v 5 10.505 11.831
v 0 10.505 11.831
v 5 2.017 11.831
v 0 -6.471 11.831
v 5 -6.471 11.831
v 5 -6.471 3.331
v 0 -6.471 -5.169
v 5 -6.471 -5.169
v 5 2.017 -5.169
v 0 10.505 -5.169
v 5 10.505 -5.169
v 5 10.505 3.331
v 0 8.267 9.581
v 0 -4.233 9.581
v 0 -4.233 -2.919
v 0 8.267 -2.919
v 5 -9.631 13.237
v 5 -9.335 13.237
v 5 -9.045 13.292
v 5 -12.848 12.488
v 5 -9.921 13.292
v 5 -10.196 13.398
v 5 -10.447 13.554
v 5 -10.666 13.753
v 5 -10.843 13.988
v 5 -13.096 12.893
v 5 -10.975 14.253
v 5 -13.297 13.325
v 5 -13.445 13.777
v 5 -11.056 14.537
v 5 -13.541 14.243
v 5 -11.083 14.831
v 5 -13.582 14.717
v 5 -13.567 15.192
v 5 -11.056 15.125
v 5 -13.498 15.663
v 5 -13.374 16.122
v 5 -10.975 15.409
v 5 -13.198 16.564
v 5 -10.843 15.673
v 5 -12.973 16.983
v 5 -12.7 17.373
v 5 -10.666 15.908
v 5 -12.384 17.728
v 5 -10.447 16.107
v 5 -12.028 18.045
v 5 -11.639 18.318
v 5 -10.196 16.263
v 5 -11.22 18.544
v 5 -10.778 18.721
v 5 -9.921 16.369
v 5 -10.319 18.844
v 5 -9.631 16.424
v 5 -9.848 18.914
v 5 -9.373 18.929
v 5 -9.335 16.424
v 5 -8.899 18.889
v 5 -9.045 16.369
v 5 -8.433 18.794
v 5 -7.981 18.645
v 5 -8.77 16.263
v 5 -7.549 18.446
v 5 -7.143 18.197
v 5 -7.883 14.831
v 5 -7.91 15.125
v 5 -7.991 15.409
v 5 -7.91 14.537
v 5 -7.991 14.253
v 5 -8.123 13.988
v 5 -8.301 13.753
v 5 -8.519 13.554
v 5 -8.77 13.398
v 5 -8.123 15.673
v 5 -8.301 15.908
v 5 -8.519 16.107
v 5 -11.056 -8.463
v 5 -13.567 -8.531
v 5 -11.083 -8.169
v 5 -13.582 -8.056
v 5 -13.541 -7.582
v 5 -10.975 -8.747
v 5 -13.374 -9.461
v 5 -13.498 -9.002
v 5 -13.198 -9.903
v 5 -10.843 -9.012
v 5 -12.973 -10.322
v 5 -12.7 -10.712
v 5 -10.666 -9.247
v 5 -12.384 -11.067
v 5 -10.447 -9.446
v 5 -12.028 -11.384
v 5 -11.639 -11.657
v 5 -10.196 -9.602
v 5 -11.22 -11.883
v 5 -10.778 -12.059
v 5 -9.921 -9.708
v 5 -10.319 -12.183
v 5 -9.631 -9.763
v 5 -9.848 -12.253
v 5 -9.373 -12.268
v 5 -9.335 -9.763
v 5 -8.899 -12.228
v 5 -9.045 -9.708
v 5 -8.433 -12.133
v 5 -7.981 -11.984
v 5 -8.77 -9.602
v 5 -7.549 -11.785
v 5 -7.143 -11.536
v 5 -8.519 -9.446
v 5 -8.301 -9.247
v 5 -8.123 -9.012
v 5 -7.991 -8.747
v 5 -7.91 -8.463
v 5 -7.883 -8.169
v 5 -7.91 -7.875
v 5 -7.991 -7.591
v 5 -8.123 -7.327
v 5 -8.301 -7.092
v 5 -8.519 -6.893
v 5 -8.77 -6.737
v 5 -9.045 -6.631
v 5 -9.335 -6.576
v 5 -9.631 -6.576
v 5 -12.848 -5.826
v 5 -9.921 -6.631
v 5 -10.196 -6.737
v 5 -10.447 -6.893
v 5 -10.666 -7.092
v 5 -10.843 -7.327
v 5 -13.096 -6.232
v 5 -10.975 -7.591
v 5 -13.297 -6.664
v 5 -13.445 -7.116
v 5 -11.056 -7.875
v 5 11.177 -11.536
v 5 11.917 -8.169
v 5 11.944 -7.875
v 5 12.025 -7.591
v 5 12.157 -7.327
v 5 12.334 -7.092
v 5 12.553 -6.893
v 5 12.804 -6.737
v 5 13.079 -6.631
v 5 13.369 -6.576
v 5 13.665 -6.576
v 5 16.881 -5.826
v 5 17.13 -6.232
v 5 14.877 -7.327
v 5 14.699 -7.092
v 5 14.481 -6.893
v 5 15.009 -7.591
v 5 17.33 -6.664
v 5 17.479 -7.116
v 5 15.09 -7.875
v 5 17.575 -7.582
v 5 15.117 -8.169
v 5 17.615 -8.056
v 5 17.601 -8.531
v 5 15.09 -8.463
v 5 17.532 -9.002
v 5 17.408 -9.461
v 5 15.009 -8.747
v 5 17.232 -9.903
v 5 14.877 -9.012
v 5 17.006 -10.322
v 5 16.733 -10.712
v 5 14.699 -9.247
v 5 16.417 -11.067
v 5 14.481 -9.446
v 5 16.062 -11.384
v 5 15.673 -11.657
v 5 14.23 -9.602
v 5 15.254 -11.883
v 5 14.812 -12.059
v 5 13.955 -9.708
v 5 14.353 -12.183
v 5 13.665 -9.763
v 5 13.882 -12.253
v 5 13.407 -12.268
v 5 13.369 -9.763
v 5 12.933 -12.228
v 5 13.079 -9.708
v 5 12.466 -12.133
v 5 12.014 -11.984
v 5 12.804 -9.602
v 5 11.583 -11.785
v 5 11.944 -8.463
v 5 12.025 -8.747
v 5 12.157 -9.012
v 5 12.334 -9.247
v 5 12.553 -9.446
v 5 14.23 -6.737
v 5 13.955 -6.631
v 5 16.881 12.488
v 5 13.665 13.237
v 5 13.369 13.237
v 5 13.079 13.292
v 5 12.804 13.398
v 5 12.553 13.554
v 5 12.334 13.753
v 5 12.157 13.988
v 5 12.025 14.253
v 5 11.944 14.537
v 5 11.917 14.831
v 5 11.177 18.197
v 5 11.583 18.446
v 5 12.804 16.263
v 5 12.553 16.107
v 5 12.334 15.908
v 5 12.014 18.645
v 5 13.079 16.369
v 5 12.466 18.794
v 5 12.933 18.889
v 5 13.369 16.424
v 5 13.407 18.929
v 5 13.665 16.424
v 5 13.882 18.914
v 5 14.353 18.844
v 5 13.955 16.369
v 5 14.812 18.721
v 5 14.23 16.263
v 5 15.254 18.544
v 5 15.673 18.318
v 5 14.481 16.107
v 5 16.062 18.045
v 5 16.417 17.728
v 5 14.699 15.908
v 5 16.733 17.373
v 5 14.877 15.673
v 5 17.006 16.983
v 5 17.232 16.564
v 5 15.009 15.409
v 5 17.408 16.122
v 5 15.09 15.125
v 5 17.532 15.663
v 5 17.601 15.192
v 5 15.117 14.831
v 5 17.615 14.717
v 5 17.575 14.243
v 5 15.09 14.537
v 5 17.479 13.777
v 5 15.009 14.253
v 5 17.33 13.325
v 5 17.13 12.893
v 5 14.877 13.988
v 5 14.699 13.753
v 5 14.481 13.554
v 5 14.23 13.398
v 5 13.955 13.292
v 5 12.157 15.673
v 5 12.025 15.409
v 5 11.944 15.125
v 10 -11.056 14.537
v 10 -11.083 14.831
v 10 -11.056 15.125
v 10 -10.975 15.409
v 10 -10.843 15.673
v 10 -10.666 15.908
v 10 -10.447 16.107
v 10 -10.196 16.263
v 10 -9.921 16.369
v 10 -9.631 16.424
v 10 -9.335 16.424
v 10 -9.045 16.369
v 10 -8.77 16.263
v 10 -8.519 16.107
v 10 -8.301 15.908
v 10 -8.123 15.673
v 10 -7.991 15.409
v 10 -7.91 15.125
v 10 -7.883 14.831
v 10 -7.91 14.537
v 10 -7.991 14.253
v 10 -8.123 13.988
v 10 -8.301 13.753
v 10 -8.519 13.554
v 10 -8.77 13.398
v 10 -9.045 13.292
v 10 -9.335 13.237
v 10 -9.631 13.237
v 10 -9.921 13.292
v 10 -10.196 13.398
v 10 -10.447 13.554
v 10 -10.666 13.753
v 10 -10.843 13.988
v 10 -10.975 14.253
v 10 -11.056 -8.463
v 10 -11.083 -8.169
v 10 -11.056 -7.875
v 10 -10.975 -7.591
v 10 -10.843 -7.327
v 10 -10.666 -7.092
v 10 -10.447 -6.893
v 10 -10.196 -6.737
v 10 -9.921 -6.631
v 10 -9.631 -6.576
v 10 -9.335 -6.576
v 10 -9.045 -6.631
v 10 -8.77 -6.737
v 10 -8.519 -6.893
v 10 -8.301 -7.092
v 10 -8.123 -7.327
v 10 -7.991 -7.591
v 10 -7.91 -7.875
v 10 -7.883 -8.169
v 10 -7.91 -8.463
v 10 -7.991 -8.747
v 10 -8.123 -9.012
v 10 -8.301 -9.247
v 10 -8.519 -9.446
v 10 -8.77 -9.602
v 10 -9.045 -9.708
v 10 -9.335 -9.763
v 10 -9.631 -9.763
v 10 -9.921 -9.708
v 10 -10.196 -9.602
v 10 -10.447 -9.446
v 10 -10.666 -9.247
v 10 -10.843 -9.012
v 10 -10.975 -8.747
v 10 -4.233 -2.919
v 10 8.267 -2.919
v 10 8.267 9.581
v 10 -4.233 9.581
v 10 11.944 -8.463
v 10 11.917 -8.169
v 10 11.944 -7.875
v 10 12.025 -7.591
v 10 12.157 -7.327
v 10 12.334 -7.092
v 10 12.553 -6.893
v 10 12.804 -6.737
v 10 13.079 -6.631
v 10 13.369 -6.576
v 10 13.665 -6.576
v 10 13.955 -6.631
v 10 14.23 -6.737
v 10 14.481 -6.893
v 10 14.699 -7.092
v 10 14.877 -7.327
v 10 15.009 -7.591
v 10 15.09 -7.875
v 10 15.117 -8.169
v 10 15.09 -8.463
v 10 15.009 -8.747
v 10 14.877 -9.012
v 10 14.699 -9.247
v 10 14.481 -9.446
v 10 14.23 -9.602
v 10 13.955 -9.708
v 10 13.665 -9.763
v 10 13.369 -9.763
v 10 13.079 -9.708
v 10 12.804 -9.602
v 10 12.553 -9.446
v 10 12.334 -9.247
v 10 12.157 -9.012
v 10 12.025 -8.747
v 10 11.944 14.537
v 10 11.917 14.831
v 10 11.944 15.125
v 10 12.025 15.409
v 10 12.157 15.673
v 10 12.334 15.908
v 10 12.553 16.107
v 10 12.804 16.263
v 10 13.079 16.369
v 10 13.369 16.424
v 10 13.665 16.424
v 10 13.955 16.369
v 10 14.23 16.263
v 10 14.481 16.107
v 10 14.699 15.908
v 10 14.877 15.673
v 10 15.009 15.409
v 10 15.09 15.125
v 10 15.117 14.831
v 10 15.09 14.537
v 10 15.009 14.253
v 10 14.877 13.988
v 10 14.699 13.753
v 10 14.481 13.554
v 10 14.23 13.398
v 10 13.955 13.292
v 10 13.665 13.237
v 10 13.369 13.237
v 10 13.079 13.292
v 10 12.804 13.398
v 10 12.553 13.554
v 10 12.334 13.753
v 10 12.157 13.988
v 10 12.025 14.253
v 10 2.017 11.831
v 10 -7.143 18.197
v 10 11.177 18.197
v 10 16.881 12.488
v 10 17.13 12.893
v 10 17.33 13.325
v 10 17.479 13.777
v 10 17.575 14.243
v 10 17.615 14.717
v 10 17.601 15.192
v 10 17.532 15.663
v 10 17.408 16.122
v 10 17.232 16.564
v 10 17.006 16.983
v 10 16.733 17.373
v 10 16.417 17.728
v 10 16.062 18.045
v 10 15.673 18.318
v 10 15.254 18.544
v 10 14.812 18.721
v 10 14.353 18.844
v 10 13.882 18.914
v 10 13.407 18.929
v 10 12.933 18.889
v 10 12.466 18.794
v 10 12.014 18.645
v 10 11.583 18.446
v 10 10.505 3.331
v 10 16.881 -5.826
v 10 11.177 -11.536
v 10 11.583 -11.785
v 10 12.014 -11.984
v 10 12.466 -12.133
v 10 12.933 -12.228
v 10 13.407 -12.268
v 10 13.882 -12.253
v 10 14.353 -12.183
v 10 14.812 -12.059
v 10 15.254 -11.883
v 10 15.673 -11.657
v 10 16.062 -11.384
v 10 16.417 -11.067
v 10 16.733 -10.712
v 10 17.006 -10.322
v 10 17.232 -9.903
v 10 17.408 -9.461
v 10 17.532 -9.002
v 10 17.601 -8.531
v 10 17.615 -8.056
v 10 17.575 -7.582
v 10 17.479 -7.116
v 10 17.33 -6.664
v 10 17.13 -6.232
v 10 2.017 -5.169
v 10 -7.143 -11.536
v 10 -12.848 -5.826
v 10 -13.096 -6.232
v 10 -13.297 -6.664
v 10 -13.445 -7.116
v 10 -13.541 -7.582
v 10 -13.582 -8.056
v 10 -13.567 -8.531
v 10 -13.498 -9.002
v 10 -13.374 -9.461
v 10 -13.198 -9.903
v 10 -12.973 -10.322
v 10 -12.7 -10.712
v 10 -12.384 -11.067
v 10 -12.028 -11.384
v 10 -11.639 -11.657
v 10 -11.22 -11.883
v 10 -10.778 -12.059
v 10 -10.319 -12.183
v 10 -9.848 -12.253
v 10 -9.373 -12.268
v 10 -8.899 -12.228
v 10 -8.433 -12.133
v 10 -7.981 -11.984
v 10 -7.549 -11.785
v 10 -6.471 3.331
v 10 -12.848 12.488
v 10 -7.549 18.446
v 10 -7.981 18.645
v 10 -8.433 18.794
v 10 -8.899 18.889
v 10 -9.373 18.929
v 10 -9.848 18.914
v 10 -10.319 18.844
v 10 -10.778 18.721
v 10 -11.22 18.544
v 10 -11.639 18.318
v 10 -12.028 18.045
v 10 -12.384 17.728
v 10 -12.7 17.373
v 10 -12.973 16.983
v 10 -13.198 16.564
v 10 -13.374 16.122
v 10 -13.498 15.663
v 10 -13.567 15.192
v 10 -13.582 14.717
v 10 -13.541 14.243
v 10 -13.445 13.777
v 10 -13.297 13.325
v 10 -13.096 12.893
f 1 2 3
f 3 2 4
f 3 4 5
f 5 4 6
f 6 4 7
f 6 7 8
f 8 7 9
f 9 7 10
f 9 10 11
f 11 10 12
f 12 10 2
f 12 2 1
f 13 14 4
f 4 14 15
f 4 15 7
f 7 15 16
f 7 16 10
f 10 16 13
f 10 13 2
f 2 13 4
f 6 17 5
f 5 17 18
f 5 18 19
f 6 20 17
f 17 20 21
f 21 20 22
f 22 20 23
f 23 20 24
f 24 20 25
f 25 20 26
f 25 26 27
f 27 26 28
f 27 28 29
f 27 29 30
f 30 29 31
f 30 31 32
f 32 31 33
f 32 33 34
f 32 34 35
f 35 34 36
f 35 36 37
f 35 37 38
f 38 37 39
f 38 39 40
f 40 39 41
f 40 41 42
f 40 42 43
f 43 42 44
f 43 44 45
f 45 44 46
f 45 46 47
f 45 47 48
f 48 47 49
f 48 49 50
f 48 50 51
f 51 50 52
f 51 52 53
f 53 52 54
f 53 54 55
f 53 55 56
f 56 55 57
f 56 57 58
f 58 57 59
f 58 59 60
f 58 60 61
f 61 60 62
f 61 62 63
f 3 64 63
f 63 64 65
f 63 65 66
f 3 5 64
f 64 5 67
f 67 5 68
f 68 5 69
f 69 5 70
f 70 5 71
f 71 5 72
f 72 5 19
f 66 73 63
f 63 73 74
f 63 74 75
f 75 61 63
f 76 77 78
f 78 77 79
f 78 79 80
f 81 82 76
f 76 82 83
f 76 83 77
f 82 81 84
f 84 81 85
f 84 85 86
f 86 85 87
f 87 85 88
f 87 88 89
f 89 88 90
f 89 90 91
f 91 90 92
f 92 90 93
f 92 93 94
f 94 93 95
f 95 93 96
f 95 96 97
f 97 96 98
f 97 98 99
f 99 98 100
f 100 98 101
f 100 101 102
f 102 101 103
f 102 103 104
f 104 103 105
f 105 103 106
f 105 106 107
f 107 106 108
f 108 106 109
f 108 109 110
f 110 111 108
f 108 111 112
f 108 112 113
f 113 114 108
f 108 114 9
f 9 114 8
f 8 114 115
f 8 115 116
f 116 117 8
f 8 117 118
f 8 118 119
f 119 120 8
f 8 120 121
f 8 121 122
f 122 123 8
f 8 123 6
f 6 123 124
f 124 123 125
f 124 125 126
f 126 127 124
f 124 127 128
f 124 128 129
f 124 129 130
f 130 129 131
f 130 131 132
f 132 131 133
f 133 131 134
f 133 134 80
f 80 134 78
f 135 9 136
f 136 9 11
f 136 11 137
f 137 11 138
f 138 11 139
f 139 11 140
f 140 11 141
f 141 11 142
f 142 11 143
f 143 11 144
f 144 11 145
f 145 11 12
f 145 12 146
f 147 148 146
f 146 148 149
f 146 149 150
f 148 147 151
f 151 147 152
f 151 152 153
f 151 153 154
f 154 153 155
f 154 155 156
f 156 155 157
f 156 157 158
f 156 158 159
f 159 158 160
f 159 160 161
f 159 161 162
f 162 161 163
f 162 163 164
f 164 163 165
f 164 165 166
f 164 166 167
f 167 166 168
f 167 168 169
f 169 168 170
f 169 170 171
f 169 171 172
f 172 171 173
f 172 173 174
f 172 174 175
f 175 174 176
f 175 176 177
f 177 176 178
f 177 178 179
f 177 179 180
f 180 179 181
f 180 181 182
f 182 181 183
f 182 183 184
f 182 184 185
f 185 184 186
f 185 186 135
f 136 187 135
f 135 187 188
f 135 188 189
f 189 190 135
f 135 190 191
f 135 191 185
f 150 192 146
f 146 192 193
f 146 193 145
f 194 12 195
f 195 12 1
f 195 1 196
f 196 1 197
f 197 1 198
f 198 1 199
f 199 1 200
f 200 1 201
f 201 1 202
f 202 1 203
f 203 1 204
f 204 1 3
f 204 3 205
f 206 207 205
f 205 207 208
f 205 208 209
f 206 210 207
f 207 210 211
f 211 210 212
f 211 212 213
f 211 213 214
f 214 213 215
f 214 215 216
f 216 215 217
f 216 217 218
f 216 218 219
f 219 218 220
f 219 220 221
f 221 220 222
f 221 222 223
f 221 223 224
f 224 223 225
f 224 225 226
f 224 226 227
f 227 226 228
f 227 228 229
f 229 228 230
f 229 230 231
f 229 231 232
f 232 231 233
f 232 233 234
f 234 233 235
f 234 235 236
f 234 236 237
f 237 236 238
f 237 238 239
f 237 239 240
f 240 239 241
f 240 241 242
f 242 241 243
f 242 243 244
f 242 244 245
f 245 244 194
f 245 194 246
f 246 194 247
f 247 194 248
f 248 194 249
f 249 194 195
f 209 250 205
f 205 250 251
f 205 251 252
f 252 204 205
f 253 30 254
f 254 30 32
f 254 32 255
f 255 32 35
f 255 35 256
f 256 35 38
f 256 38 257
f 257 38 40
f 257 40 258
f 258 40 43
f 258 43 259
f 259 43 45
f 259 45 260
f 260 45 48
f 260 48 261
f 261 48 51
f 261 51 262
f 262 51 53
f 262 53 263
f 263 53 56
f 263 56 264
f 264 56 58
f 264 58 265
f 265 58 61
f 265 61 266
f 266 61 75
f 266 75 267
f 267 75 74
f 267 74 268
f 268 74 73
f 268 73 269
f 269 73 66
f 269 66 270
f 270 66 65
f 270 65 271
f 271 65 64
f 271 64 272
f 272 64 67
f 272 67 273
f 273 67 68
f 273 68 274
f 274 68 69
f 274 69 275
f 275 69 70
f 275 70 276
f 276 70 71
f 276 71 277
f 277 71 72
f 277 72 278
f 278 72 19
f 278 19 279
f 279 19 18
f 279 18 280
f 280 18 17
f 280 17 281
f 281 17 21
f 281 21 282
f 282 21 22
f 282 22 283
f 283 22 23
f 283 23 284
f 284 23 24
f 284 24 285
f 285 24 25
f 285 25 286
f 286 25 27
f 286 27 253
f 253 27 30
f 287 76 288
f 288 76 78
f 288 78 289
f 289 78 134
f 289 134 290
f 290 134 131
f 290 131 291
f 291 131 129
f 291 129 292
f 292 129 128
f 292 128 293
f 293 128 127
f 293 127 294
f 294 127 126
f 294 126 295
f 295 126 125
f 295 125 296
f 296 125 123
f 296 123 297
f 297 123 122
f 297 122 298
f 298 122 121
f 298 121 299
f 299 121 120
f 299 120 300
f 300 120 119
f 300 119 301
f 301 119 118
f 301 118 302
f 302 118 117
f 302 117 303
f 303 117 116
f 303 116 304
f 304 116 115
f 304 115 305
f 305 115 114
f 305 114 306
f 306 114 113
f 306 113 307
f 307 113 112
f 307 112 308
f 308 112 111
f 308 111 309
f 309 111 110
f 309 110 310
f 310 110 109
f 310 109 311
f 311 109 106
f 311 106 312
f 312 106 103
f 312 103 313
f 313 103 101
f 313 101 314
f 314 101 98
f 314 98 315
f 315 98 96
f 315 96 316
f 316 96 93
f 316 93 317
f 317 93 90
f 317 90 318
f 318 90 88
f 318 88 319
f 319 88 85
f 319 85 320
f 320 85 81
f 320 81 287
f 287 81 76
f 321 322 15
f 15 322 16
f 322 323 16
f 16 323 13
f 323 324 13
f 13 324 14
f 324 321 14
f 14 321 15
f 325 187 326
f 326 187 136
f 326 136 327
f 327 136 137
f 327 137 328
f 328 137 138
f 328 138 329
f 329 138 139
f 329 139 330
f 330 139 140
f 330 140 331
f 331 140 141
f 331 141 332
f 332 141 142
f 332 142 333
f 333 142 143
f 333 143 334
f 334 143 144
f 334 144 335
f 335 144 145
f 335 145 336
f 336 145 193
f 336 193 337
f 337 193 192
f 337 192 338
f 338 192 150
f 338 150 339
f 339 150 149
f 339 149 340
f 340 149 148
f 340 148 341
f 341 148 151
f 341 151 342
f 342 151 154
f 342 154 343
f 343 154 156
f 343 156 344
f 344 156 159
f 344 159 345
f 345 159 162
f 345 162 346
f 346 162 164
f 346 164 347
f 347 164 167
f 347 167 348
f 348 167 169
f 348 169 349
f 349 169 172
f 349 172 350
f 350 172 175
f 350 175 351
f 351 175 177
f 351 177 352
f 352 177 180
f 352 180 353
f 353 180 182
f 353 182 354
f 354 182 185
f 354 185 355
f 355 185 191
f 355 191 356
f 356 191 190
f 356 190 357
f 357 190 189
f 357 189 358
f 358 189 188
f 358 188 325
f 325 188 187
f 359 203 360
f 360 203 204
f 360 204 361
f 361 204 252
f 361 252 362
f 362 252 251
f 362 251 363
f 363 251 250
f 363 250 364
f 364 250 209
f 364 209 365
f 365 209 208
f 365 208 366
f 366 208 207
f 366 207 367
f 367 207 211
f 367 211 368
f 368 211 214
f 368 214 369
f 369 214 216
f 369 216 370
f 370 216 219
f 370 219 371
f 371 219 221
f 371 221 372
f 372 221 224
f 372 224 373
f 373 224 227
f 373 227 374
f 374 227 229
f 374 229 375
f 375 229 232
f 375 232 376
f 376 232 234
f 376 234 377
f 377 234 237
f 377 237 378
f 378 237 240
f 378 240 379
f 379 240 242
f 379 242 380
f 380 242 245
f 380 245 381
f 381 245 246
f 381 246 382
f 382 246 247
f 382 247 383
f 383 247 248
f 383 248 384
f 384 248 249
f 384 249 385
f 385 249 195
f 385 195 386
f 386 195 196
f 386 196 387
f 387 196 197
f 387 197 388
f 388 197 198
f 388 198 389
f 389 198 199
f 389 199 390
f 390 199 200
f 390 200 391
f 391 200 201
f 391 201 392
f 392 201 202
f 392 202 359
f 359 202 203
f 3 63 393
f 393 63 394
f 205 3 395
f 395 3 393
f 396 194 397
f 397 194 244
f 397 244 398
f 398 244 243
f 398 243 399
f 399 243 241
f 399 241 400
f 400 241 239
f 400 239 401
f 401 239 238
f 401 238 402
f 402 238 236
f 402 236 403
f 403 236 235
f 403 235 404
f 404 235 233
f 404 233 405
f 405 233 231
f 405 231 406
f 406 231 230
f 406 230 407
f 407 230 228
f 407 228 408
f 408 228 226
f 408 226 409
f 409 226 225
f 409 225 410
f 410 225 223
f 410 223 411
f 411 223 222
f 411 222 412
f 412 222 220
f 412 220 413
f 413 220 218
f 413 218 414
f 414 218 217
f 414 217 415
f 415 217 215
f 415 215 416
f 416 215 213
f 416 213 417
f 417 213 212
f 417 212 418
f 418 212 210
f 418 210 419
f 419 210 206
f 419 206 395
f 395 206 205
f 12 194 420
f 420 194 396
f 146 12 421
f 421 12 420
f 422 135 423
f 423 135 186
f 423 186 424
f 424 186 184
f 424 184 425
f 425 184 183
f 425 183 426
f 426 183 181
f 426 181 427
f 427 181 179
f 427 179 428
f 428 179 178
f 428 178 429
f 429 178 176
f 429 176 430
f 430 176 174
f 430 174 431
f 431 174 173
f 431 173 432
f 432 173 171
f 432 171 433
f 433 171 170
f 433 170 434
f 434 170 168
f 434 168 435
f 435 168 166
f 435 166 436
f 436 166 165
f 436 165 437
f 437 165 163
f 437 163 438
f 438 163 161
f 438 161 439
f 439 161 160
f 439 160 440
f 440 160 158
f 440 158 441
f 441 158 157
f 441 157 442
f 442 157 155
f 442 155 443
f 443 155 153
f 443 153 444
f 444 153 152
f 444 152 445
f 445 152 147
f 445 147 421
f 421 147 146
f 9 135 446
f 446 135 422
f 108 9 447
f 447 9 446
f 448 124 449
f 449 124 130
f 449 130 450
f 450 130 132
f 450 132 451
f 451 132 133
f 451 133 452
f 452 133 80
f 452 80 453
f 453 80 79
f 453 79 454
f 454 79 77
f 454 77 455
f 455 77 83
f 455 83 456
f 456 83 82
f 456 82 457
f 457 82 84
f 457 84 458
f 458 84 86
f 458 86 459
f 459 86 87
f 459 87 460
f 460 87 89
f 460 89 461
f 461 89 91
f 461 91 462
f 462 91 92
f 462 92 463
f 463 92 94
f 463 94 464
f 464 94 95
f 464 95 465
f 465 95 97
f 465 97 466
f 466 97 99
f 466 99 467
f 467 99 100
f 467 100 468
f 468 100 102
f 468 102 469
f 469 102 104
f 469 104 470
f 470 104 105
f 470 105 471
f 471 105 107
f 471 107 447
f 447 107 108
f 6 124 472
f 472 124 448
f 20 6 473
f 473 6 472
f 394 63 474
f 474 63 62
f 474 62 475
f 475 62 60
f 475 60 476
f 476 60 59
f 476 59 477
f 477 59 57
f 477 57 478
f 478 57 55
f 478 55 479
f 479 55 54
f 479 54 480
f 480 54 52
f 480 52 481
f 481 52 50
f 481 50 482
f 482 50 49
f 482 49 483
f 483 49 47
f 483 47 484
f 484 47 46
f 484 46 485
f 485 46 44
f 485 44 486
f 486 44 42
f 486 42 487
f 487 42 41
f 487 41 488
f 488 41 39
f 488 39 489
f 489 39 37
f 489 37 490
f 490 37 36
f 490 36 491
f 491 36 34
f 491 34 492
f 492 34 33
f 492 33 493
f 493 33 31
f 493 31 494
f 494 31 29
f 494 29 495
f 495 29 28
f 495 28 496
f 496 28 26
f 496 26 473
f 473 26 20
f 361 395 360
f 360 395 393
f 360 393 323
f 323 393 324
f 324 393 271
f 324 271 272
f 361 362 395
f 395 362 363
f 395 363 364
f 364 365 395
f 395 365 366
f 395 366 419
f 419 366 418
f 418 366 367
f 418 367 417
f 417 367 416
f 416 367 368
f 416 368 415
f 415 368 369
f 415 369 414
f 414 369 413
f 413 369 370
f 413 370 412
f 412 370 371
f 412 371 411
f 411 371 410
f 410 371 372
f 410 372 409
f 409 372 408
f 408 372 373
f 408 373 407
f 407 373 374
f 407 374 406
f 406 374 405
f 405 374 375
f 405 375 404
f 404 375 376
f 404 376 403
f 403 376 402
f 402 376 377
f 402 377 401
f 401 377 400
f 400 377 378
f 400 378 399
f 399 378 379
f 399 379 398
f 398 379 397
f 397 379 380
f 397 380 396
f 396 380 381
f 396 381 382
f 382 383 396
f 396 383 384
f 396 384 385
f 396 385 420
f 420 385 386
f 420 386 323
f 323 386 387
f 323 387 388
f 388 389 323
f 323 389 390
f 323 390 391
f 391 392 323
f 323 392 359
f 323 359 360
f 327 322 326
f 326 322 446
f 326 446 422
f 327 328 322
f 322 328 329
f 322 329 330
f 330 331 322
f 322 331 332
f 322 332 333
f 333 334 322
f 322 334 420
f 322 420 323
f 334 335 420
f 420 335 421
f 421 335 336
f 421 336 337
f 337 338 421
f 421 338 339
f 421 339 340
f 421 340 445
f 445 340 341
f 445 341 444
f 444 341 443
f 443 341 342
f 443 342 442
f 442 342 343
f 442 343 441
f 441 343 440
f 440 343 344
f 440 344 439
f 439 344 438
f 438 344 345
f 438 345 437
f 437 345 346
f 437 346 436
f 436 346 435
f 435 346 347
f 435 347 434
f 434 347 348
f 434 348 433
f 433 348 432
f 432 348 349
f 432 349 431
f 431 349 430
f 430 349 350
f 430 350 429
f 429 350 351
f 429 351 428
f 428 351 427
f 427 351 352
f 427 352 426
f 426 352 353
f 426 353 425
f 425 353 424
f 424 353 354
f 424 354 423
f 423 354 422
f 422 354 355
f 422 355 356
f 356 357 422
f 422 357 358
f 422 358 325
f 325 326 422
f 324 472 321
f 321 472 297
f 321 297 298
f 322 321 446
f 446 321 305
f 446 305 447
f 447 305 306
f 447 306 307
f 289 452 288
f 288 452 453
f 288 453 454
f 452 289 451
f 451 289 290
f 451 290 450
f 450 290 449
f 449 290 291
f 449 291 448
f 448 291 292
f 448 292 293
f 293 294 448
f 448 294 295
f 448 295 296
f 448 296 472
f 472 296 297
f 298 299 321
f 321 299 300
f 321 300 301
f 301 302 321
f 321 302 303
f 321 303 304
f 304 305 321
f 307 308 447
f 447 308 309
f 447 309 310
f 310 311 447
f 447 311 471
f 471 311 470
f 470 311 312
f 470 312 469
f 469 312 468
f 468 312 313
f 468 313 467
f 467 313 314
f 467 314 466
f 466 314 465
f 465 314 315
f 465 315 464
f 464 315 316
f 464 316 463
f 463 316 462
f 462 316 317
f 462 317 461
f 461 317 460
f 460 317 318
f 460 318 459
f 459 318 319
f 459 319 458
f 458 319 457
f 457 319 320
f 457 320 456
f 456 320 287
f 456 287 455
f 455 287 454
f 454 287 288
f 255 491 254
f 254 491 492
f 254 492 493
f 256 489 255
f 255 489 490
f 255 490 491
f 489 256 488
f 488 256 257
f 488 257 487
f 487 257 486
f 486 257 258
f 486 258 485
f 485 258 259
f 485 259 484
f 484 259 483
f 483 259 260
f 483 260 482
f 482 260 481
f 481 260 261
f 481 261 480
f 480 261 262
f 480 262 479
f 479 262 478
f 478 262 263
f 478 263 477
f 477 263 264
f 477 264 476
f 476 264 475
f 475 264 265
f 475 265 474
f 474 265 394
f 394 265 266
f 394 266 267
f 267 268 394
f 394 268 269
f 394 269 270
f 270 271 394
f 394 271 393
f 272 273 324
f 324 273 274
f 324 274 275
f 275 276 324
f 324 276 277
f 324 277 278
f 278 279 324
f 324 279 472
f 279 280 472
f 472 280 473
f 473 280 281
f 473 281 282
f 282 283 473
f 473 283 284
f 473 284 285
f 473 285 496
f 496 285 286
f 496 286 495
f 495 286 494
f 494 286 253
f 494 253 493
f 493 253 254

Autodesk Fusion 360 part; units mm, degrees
sketch "Sketch2" plane through (5, 0, 0) normal (1, 0, 0) x (0, 1, 0)
  line L0 (16.9637, 18.2844) -> (-13.0292, -11.7227) construction
  line L1 (-12.9363, 18.2856) -> (17.0619, -11.7162) construction
  circle A0 centre (13.5169, 14.8306) radius 1.6
  circle A1 centre (-9.4831, 14.8306) radius 1.6
  circle A2 centre (-9.4831, -8.1694) radius 1.6
  circle A3 centre (13.5169, -8.1694) radius 1.6
  circle A4 centre (-9.4831, 14.8306) radius 4.1
  circle A5 centre (13.5169, 14.8306) radius 4.1
  circle A6 centre (-9.4831, -8.1694) radius 4.1
  line L2 (9.4619, 10.7862) -> (-5.5274, -4.2245) construction
  line L3 (-7.1431, 18.1972) -> (2.0169, 11.8306)
  line L4 (2.0169, 11.8306) -> (11.1769, 18.1972)
  line L5 (-12.8477, 12.4876) -> (-6.471, 3.3306)
  line L6 (-6.471, 3.3306) -> (-12.8477, -5.8265)
  line L7 (-7.1431, -11.5361) -> (2.0169, -5.1694)
  line L8 (10.5048, 3.3306) -> (16.8815, 12.4876)
  circle A7 centre (13.5169, -8.1694) radius 4.1
  line L9 (10.5048, 3.3306) -> (16.8815, -5.8265)
  line L10 (2.0169, -5.1694) -> (11.1769, -11.5361)
  line L11 (-4.2331, -2.9194) -> (8.2669, -2.9194)
  line L12 (8.2669, -2.9194) -> (8.2669, 9.5806)
  line L13 (8.2669, 9.5806) -> (-4.2331, 9.5806)
  line L14 (-4.2331, 9.5806) -> (-4.2331, -2.9194)
  line L15 (-4.2331, -2.9194) -> (8.2669, 9.5806) construction
  line L16 (8.2669, -2.9194) -> (-4.2331, 9.5806) construction
  line L17 (10.5048, 11.8306) -> (-6.471, 11.8306)
  line L18 (-6.471, 11.8306) -> (-6.471, -5.1694)
  line L19 (-6.471, -5.1694) -> (10.5048, -5.1694)
  line L20 (10.5048, -5.1694) -> (10.5048, 11.8306)
  line L21 (10.5048, 11.8306) -> (-6.471, -5.1694) construction
  line L22 (-6.471, 11.8306) -> (10.5048, -5.1694) construction
  point P0 (2.0169, 3.3306)
  point P1 (2.0169, 3.3306)
  point P2 (2.0169, 3.3306)
  point P3 (2.0169, 3.3306)
  point P4 (2.0169, 3.3306)
  dimension "d11" = 3.2
  dimension "d12" = 11.5
  dimension "d13" = 3.2
  dimension "d14" = 3.2
  dimension "d15" = 3.2
  dimension "d18" = 11.5
  dimension "d19" = 23
  dimension "d20" = 8.2
  dimension "d21" = 8.2
  dimension "d22" = 8.2
  dimension "d23" = 8.2
  dimension "d33" = 12.5
  dimension "d34" = 17
  dimension "d35" = 23
extrude "Extrude12" add sketch "Sketch2" along normal blind 5
extrude "Extrude13" add sketch "Sketch2" against normal blind 5 contours L17 L18 L19 L20
extrude "Extrude3" [suppressed]
equation "d11 = motorScrewHole"
equation "d12 = boltDistance / 2"
equation "d13 = motorScrewHole"
equation "d14 = motorScrewHole"
equation "d15 = motorScrewHole"
equation "motorScrewHole = 3.2 mm" comment "poo"
equation "d18 = boltDistance / 2"
equation "d19 = boltDistance"
equation "d20 = motorScrewHole + 5 mm"
equation "d21 = motorScrewHole + 5 mm"
equation "d22 = motorScrewHole + 5 mm"
equation "d23 = motorScrewHole + 5 mm"
equation "d35 = boltDistance"
equation "boltDistance = 23 mm"
